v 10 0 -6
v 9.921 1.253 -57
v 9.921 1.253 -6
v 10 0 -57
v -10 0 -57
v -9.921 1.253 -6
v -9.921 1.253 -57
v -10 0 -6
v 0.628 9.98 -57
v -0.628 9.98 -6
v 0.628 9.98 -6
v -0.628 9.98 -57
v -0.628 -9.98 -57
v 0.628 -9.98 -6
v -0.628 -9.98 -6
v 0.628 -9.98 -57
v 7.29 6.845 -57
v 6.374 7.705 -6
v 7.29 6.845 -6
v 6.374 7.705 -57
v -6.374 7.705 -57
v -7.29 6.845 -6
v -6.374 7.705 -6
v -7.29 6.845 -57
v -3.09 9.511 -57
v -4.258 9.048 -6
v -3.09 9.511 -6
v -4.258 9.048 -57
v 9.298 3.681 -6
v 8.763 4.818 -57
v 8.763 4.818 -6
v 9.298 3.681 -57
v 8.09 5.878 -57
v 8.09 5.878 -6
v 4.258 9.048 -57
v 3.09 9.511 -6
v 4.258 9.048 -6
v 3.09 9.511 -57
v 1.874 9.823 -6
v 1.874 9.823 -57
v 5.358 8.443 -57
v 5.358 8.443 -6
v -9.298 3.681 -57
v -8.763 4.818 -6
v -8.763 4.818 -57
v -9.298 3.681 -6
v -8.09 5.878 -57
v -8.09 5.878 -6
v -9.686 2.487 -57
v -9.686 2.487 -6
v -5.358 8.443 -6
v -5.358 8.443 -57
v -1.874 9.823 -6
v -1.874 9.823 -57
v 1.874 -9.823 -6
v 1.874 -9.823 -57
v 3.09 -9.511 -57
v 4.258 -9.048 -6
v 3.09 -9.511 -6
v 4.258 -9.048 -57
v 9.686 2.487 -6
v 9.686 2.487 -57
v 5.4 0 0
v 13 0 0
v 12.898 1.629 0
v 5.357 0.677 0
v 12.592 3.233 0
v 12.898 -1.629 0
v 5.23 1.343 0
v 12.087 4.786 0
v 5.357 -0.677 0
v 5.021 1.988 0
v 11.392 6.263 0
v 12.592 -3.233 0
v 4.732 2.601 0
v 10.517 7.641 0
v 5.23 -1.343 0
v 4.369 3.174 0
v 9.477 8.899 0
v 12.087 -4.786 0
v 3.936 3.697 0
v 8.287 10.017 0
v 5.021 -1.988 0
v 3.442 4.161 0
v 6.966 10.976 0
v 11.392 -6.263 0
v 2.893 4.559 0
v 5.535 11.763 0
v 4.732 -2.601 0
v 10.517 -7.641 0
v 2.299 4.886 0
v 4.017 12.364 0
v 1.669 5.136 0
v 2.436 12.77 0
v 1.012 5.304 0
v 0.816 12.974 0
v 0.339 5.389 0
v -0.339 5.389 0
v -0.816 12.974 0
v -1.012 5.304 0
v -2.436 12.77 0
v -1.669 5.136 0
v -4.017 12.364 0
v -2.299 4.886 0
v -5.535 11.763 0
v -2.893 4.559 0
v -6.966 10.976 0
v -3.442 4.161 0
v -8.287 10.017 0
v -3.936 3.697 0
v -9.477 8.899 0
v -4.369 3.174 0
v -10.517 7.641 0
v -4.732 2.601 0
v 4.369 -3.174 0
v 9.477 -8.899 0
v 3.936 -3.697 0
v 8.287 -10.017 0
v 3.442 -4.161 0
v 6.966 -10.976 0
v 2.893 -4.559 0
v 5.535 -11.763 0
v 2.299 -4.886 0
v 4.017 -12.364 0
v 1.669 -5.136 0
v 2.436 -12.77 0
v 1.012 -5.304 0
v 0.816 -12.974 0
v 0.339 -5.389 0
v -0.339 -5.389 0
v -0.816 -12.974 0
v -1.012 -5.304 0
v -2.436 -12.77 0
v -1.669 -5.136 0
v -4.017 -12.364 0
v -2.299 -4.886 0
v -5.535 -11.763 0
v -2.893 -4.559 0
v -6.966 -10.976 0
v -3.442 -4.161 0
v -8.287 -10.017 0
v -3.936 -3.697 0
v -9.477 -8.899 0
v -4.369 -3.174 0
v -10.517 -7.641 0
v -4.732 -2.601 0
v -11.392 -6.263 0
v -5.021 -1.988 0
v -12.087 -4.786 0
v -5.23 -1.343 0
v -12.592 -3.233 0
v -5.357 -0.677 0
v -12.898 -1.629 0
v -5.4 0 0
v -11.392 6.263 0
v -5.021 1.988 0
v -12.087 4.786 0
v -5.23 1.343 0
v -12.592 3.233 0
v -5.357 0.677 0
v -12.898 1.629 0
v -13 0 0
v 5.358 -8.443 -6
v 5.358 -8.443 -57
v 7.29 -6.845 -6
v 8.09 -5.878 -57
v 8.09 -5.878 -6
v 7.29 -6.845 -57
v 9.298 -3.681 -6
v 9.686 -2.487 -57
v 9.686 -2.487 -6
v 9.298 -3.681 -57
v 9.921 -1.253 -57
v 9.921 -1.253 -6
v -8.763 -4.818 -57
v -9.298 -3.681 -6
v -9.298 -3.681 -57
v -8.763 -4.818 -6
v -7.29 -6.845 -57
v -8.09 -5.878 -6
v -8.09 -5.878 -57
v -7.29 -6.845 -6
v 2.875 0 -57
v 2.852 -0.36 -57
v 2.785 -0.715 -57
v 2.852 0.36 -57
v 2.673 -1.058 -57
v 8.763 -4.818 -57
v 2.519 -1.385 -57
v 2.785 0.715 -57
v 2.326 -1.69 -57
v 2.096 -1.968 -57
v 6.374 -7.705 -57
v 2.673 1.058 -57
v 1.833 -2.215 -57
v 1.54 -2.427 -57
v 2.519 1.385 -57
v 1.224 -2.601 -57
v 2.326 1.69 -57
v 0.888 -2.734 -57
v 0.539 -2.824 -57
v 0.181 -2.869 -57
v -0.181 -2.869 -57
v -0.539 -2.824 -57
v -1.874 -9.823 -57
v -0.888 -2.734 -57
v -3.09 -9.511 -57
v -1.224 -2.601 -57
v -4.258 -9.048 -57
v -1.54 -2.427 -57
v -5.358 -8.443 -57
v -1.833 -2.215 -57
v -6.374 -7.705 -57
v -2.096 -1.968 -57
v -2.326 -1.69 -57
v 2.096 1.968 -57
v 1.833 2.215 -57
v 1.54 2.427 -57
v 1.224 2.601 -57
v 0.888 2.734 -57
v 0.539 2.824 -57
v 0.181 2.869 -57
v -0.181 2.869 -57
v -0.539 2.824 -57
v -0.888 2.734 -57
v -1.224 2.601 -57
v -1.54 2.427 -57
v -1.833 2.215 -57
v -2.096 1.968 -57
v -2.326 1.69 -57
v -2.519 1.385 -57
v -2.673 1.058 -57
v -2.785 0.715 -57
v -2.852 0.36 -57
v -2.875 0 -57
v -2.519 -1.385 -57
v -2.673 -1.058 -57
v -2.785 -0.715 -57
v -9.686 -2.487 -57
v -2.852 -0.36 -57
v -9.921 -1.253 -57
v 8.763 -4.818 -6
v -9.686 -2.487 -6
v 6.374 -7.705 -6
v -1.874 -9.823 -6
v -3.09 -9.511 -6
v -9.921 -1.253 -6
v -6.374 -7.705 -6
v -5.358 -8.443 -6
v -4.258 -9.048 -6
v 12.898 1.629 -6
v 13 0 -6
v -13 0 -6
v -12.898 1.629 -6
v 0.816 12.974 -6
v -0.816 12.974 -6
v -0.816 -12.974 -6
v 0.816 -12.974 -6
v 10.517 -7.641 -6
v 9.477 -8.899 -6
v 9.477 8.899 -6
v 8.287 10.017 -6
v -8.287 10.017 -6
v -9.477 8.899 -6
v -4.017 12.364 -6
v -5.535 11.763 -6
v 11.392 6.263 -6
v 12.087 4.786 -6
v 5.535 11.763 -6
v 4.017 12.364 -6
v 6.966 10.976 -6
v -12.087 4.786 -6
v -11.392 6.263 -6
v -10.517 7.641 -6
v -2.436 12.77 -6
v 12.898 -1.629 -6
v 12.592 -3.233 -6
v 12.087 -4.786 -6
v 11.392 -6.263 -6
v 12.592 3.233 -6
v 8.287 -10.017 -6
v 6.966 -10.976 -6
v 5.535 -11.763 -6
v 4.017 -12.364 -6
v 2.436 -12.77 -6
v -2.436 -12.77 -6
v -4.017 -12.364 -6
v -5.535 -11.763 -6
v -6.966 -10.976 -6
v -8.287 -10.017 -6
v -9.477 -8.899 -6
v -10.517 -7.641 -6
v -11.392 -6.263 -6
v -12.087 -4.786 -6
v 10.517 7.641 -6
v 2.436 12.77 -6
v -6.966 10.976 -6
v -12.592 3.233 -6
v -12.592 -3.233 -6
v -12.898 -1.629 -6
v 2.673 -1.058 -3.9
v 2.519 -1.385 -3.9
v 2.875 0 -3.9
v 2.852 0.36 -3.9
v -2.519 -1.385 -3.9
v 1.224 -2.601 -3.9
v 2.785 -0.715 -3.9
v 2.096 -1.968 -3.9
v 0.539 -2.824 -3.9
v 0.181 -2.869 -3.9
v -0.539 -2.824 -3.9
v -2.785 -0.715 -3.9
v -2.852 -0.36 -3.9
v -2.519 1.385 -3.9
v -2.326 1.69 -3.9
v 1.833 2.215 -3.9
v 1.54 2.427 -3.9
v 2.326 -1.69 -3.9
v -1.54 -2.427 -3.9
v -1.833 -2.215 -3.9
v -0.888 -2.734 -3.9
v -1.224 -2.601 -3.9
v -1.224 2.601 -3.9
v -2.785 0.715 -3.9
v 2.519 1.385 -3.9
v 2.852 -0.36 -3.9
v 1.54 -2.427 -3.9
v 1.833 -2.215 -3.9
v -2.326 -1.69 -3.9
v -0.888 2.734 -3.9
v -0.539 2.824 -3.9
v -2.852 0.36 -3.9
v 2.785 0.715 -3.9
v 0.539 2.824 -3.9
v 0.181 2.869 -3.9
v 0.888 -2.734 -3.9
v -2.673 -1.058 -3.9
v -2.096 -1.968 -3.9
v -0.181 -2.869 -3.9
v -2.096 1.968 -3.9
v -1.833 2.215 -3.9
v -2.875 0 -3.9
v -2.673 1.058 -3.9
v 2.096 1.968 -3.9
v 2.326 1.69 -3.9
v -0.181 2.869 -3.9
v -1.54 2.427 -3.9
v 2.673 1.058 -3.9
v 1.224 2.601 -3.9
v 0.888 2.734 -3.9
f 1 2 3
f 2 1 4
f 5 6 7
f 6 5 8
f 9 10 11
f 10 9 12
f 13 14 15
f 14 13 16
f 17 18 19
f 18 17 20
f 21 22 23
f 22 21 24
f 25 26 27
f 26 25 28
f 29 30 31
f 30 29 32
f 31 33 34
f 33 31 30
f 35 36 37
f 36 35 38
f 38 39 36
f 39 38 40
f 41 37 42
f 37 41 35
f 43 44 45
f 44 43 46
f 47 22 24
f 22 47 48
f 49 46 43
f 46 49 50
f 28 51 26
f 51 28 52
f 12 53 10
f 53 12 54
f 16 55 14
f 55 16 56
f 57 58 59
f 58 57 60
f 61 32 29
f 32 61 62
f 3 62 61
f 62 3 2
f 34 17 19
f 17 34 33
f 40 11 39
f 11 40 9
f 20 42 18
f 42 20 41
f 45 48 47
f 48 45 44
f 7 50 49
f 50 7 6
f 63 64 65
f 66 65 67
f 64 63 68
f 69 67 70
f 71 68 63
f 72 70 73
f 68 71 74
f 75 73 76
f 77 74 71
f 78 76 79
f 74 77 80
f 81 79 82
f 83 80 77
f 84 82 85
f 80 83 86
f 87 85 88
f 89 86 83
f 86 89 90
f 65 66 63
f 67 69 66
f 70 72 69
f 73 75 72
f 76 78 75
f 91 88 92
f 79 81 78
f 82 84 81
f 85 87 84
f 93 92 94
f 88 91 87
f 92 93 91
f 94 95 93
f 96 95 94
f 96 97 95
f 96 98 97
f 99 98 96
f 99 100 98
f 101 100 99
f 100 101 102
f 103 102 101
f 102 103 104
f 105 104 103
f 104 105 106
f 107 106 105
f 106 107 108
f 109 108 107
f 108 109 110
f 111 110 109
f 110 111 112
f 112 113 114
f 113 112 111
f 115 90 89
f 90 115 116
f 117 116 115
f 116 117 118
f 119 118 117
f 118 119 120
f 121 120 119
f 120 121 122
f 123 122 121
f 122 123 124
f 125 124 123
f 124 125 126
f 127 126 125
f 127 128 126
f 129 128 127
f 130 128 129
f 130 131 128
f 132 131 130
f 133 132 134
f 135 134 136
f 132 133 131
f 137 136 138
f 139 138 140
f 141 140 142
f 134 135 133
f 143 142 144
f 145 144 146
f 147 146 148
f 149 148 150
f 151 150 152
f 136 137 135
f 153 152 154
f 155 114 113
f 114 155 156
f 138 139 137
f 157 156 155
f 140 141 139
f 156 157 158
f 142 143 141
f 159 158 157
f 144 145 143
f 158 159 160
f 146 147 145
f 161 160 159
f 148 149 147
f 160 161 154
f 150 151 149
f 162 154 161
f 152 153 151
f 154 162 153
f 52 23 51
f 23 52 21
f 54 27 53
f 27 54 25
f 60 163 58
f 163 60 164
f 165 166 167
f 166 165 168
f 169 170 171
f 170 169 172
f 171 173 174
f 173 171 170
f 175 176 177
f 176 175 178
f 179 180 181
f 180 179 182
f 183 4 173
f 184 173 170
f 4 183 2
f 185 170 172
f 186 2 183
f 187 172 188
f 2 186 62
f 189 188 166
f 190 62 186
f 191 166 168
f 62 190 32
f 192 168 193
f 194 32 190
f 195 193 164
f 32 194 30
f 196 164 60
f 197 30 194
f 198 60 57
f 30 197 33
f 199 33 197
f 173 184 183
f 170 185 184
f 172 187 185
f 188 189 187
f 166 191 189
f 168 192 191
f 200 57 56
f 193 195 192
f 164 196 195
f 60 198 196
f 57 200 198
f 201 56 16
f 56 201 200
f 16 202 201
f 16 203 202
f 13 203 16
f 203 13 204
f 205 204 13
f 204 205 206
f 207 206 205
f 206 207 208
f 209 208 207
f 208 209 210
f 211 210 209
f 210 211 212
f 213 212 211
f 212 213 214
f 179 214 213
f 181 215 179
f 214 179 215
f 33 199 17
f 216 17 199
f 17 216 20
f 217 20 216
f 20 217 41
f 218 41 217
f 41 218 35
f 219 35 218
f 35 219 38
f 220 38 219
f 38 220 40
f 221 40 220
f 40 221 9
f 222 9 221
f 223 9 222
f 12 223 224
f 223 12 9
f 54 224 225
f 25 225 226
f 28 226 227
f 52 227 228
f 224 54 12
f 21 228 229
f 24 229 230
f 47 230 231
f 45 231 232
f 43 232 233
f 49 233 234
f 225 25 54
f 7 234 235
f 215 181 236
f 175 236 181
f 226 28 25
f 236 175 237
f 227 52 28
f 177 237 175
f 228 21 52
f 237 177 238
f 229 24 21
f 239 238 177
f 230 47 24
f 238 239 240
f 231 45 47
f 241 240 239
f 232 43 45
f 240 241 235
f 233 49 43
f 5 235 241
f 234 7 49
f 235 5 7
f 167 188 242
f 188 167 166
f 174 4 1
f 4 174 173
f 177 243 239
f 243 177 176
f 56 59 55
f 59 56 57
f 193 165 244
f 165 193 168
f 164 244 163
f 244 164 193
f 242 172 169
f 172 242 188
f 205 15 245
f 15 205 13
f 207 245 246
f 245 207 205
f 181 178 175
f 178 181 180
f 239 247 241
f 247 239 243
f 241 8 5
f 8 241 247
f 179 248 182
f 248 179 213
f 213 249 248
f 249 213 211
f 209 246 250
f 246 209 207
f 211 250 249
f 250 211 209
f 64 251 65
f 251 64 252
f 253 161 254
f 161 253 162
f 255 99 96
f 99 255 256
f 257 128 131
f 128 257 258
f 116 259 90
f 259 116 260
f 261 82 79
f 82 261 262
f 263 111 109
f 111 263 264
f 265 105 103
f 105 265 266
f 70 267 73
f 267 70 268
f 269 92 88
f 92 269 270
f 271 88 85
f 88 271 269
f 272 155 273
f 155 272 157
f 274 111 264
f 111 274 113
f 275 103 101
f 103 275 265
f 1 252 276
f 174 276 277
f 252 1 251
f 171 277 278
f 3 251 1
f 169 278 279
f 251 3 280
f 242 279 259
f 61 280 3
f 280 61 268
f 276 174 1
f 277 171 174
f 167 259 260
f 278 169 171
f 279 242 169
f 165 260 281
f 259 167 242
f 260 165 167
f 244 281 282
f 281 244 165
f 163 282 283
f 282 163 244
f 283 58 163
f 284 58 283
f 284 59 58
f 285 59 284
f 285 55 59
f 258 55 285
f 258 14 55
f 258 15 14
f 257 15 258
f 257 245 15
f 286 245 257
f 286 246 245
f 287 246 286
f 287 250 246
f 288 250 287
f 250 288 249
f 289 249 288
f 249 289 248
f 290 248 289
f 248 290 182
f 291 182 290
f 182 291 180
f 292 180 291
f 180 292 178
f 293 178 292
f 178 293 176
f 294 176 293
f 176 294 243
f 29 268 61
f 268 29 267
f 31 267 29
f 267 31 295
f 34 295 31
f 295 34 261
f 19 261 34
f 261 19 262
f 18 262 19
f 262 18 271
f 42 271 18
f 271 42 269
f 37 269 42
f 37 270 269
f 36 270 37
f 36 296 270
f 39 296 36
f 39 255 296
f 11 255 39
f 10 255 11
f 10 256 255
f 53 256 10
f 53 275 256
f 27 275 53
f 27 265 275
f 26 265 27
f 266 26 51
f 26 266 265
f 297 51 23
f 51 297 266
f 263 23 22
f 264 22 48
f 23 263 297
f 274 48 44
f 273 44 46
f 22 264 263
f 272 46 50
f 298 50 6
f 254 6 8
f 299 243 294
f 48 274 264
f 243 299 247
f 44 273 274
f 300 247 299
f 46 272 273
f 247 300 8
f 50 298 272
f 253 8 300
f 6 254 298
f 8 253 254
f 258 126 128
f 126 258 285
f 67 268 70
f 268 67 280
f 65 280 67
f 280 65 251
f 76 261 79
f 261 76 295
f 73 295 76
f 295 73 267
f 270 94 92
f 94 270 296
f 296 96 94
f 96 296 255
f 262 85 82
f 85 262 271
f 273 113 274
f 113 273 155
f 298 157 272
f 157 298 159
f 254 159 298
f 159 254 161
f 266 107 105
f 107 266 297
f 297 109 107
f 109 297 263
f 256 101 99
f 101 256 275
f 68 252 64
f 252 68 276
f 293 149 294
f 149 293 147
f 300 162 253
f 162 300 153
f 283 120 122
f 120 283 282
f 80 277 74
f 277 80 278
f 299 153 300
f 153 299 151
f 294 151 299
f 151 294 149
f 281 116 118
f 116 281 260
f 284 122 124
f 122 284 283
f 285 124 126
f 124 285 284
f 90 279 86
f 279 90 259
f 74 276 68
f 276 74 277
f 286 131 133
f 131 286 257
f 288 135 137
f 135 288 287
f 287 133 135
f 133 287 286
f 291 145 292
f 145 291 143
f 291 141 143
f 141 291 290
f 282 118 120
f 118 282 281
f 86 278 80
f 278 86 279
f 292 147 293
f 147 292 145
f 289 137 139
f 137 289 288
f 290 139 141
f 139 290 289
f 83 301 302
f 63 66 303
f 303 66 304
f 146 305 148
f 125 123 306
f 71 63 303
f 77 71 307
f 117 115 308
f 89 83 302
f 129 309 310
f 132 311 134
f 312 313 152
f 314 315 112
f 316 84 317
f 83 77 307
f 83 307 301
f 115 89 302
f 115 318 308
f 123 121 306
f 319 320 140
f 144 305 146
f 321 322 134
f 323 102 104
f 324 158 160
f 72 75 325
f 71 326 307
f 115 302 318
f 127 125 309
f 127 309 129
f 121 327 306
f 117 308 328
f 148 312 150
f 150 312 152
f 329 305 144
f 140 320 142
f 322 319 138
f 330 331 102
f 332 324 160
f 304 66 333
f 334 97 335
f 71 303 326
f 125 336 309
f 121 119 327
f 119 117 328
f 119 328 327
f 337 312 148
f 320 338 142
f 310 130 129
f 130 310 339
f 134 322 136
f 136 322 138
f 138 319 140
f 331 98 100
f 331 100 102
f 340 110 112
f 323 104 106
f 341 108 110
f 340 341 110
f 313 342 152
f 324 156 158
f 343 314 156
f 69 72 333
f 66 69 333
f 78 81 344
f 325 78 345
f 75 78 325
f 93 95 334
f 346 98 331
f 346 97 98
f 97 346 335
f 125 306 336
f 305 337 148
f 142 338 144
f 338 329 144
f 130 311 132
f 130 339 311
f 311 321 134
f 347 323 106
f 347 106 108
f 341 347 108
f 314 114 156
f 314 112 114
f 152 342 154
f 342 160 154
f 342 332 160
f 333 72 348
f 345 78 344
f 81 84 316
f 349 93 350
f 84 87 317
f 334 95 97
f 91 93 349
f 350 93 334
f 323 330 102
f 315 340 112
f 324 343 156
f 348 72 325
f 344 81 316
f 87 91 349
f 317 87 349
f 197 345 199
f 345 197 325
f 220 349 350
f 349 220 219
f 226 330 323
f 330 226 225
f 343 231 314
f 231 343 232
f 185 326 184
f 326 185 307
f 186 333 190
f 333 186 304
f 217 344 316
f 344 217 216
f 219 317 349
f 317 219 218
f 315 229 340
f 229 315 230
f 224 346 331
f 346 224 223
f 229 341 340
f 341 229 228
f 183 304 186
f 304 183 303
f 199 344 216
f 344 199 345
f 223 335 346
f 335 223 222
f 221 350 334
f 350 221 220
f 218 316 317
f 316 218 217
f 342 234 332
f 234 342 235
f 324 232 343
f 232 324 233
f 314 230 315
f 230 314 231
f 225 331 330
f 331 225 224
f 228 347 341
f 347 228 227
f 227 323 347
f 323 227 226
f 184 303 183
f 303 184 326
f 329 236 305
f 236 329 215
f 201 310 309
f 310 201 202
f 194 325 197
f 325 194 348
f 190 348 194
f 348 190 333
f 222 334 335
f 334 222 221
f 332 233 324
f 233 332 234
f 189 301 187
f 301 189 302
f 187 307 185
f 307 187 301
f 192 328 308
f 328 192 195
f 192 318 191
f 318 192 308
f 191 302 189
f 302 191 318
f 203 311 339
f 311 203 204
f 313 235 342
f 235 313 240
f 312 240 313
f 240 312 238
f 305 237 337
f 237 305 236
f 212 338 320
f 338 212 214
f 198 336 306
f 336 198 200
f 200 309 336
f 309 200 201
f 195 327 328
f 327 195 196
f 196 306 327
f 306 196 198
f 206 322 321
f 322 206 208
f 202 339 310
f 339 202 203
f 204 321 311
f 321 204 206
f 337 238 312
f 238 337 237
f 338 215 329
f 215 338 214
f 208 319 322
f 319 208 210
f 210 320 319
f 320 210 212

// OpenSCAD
$fn = 50;


difference() {
	union() {
		translate(v = [0, 0, -57.0000000000]) {
			cylinder(h = 57, r = 10.0000000000);
		}
		translate(v = [0, 0, -6.0000000000]) {
			cylinder(h = 6, r = 13.0000000000);
		}
	}
	union() {
		translate(v = [0, 0, 0]) {
			rotate(a = [0, 0, 0]) {
				difference() {
					union() {
						#translate(v = [0, 0, -57.0000000000]) {
							cylinder(h = 57, r = 2.6000000000);
						}
						#translate(v = [0, 0, -3.9000000000]) {
							cylinder(h = 3.9000000000, r = 10.0000000000, r1 = 2.8750000000, r2 = 5.4000000000);
						}
						#translate(v = [0, 0, -57.0000000000]) {
							cylinder(h = 57, r = 2.8750000000);
						}
						#translate(v = [0, 0, -57.0000000000]) {
							cylinder(h = 57, r = 2.6000000000);
						}
					}
					union();
				}
			}
		}
	}
}
